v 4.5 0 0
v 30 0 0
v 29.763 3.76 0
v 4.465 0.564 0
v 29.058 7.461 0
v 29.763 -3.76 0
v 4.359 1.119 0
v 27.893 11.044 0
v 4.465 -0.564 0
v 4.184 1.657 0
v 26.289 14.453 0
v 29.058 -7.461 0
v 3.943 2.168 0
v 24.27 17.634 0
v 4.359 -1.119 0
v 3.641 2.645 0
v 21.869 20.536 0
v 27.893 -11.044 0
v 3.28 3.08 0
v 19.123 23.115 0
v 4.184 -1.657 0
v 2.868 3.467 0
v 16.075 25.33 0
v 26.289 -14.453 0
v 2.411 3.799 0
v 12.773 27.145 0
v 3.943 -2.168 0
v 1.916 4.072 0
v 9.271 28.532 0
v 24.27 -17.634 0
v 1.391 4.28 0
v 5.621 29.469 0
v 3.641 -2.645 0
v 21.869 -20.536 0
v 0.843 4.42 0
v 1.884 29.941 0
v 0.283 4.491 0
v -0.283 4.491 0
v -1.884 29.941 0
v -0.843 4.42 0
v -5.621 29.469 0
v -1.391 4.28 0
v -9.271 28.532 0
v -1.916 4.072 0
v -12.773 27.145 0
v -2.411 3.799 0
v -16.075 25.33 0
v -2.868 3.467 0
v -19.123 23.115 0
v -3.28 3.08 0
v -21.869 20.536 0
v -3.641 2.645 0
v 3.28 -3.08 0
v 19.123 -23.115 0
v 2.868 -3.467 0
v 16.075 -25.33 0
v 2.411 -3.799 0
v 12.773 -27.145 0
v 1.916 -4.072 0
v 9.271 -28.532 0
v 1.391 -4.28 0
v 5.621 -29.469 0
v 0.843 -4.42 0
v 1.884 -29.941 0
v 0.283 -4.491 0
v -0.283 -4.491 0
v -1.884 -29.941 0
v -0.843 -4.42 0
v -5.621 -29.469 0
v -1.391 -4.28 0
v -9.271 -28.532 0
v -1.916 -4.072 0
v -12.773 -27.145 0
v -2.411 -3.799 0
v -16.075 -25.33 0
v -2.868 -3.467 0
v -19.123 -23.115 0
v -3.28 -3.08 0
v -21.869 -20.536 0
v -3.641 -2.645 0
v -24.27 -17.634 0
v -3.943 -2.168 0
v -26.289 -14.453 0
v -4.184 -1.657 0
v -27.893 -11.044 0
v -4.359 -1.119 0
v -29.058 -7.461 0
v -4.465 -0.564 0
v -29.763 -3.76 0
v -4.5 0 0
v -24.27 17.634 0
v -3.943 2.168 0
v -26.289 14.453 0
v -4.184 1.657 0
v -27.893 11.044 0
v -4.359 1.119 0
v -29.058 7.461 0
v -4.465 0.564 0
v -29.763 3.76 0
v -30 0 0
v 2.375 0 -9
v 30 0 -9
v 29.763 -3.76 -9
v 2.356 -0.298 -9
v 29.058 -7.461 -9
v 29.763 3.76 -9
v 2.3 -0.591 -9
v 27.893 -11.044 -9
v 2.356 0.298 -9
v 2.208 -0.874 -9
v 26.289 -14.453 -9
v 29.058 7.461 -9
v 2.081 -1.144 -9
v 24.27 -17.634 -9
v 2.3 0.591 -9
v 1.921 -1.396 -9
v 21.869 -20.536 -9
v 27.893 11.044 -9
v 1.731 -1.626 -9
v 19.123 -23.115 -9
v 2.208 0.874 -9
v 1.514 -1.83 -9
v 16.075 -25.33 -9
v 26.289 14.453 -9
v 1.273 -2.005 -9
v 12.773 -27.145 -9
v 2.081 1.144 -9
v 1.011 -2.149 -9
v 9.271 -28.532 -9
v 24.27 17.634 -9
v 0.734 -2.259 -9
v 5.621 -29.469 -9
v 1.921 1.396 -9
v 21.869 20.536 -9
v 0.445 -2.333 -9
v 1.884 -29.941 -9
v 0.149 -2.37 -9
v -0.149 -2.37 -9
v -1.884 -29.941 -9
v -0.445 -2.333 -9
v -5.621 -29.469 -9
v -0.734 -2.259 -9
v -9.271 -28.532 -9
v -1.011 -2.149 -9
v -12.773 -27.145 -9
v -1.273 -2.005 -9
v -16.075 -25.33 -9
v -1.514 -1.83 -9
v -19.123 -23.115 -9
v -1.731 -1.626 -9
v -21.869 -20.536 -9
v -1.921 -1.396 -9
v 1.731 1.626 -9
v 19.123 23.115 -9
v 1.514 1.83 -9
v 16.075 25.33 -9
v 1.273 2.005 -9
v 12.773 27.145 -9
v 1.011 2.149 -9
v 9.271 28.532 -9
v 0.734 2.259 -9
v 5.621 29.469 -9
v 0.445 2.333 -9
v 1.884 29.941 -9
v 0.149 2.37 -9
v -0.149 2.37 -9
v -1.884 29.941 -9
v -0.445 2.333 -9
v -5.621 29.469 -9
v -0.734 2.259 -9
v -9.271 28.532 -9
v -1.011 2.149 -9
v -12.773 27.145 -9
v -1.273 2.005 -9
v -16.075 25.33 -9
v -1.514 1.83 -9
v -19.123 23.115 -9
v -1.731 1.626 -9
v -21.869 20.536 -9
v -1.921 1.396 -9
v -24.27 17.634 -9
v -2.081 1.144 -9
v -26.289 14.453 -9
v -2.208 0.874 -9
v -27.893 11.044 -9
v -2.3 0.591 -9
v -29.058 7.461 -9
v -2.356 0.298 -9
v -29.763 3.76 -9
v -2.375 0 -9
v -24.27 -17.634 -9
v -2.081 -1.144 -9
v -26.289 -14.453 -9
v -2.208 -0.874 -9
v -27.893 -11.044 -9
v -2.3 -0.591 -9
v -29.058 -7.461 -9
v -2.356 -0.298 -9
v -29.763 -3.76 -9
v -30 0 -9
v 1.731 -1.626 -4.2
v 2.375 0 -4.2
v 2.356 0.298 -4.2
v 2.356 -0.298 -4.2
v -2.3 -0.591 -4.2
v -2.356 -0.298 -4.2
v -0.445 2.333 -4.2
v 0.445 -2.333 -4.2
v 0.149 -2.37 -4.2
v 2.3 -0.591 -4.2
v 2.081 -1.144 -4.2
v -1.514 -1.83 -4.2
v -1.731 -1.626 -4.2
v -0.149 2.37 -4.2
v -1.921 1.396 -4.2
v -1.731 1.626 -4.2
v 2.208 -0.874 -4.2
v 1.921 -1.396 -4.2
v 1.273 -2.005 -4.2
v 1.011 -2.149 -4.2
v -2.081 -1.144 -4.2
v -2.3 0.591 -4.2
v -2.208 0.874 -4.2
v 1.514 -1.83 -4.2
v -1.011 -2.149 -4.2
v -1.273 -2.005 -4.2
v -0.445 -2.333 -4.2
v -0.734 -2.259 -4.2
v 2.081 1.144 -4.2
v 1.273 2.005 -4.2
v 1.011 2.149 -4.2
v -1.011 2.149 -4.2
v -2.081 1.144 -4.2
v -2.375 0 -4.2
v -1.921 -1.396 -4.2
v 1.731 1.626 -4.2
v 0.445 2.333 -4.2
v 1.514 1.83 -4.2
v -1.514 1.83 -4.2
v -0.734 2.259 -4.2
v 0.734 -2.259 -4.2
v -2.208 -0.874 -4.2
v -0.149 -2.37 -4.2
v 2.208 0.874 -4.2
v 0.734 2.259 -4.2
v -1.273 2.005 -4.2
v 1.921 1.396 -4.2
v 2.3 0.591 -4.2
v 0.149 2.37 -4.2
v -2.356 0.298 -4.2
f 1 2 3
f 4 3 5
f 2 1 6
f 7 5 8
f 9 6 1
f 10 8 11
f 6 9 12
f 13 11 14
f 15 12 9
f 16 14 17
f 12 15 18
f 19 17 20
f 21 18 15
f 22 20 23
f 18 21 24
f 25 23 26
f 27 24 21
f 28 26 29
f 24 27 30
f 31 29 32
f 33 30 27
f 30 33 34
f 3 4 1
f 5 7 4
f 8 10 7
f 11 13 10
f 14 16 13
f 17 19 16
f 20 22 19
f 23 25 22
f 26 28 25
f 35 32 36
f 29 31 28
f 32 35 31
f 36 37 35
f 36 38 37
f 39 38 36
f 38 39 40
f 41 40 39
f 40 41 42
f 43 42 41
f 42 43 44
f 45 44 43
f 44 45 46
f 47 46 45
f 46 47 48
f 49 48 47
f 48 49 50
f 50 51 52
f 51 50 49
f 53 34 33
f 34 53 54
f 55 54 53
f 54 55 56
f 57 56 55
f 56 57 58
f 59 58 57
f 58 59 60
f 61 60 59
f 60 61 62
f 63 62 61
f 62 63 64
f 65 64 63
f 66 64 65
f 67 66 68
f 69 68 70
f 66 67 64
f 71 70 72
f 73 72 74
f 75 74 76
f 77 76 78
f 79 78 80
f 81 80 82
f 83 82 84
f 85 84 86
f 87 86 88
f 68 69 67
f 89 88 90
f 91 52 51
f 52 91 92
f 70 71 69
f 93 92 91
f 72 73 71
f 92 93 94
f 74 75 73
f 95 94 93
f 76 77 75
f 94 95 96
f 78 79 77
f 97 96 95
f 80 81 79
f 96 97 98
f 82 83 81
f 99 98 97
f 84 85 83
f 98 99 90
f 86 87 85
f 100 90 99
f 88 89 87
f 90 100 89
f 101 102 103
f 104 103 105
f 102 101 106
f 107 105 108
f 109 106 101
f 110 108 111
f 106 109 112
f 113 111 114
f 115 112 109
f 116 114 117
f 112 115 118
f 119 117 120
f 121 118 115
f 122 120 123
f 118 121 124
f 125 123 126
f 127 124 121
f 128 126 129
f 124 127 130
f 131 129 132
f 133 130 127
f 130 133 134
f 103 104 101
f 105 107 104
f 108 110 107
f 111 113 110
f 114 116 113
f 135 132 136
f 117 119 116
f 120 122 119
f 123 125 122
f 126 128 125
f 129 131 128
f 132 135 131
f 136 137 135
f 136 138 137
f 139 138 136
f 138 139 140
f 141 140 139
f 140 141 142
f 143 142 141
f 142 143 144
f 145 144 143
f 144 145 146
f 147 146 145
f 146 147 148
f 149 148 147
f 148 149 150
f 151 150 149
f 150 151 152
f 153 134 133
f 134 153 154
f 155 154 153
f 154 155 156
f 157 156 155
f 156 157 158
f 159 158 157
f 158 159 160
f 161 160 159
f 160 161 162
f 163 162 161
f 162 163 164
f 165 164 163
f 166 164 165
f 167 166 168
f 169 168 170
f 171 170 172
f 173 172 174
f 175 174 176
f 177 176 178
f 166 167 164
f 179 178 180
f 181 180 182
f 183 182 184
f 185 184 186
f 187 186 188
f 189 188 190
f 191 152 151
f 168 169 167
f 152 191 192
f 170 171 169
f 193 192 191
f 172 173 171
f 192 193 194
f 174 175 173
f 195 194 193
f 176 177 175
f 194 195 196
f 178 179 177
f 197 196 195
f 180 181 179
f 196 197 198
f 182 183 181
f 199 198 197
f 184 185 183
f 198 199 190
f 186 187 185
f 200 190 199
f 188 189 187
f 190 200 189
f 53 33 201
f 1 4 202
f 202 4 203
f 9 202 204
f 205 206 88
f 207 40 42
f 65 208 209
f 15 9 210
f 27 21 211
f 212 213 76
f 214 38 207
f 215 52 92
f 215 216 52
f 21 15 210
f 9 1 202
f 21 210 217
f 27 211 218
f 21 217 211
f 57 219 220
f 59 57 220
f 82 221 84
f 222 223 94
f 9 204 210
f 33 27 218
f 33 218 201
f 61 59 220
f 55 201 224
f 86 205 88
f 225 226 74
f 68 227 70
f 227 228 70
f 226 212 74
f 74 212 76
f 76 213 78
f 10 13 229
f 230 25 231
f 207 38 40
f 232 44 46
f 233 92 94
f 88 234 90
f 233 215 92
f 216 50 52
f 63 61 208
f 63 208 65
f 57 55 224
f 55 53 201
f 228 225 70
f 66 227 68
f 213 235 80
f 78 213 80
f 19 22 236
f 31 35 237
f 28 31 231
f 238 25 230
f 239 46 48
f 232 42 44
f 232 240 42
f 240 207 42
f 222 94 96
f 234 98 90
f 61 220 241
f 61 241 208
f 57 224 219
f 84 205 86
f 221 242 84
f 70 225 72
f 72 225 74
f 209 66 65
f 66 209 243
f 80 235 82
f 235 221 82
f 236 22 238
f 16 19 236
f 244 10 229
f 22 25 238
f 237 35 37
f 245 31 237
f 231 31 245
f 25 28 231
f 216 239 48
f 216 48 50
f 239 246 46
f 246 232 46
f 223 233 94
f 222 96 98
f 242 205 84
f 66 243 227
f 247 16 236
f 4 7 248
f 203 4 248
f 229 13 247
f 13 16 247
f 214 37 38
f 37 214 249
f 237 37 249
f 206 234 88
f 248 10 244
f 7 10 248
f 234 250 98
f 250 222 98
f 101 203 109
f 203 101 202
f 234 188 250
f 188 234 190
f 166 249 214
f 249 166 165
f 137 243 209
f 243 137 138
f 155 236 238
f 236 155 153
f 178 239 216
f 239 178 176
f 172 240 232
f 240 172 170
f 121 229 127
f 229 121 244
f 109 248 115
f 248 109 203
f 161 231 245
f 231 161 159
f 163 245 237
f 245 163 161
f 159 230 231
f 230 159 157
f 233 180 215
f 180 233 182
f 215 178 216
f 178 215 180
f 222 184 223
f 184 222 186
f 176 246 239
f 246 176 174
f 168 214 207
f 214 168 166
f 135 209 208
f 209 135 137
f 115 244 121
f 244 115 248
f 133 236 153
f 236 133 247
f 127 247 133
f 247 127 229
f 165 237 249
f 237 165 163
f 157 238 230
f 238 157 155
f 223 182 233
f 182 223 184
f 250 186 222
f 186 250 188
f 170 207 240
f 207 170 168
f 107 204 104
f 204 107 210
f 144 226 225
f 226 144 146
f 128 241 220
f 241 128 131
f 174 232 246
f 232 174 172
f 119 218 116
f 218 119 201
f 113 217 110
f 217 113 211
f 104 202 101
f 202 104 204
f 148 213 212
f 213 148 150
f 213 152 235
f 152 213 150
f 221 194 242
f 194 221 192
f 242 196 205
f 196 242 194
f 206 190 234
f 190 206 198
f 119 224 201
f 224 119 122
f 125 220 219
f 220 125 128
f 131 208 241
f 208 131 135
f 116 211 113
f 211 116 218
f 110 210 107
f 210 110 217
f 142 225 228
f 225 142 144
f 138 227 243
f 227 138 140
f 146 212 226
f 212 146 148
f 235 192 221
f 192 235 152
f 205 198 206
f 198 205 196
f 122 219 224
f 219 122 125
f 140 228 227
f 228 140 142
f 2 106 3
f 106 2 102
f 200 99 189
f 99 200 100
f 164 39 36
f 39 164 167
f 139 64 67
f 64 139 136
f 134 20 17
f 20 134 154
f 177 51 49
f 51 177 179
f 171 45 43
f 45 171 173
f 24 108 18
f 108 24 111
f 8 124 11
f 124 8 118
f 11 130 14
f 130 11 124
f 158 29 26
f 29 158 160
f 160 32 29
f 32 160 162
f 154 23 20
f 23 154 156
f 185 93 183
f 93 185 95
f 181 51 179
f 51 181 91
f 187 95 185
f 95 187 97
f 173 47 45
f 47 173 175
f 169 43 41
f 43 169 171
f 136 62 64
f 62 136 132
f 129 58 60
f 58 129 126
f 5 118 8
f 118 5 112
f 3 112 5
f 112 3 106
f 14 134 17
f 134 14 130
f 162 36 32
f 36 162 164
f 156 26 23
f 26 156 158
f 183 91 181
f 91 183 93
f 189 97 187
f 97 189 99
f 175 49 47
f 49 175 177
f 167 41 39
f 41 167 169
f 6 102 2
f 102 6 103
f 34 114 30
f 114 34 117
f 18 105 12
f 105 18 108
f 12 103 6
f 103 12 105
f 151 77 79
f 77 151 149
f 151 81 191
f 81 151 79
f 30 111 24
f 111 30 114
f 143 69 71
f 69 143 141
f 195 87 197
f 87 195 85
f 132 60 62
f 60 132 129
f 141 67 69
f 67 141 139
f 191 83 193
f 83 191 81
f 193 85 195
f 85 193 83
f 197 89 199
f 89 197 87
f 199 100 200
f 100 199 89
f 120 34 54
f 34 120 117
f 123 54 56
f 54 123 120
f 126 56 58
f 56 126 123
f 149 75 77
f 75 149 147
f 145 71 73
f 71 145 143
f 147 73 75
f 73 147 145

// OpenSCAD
$fn = 50;


difference() {
	union() {
		translate(v = [0, 0, -9.0000000000]) {
			cylinder(h = 9, r = 30.0000000000);
		}
	}
	union() {
		translate(v = [0, 0, 0]) {
			rotate(a = [0, 0, 0]) {
				difference() {
					union() {
						translate(v = [0, 0, -9.0000000000]) {
							cylinder(h = 9, r = 2.2500000000);
						}
						translate(v = [0, 0, -4.2000000000]) {
							cylinder(h = 4.2000000000, r1 = 2.3750000000, r2 = 4.5000000000);
						}
						translate(v = [0, 0, -9.0000000000]) {
							cylinder(h = 9, r = 2.3750000000);
						}
						translate(v = [0, 0, -9.0000000000]) {
							cylinder(h = 9, r = 2.2500000000);
						}
					}
					union();
				}
			}
		}
	}
}
